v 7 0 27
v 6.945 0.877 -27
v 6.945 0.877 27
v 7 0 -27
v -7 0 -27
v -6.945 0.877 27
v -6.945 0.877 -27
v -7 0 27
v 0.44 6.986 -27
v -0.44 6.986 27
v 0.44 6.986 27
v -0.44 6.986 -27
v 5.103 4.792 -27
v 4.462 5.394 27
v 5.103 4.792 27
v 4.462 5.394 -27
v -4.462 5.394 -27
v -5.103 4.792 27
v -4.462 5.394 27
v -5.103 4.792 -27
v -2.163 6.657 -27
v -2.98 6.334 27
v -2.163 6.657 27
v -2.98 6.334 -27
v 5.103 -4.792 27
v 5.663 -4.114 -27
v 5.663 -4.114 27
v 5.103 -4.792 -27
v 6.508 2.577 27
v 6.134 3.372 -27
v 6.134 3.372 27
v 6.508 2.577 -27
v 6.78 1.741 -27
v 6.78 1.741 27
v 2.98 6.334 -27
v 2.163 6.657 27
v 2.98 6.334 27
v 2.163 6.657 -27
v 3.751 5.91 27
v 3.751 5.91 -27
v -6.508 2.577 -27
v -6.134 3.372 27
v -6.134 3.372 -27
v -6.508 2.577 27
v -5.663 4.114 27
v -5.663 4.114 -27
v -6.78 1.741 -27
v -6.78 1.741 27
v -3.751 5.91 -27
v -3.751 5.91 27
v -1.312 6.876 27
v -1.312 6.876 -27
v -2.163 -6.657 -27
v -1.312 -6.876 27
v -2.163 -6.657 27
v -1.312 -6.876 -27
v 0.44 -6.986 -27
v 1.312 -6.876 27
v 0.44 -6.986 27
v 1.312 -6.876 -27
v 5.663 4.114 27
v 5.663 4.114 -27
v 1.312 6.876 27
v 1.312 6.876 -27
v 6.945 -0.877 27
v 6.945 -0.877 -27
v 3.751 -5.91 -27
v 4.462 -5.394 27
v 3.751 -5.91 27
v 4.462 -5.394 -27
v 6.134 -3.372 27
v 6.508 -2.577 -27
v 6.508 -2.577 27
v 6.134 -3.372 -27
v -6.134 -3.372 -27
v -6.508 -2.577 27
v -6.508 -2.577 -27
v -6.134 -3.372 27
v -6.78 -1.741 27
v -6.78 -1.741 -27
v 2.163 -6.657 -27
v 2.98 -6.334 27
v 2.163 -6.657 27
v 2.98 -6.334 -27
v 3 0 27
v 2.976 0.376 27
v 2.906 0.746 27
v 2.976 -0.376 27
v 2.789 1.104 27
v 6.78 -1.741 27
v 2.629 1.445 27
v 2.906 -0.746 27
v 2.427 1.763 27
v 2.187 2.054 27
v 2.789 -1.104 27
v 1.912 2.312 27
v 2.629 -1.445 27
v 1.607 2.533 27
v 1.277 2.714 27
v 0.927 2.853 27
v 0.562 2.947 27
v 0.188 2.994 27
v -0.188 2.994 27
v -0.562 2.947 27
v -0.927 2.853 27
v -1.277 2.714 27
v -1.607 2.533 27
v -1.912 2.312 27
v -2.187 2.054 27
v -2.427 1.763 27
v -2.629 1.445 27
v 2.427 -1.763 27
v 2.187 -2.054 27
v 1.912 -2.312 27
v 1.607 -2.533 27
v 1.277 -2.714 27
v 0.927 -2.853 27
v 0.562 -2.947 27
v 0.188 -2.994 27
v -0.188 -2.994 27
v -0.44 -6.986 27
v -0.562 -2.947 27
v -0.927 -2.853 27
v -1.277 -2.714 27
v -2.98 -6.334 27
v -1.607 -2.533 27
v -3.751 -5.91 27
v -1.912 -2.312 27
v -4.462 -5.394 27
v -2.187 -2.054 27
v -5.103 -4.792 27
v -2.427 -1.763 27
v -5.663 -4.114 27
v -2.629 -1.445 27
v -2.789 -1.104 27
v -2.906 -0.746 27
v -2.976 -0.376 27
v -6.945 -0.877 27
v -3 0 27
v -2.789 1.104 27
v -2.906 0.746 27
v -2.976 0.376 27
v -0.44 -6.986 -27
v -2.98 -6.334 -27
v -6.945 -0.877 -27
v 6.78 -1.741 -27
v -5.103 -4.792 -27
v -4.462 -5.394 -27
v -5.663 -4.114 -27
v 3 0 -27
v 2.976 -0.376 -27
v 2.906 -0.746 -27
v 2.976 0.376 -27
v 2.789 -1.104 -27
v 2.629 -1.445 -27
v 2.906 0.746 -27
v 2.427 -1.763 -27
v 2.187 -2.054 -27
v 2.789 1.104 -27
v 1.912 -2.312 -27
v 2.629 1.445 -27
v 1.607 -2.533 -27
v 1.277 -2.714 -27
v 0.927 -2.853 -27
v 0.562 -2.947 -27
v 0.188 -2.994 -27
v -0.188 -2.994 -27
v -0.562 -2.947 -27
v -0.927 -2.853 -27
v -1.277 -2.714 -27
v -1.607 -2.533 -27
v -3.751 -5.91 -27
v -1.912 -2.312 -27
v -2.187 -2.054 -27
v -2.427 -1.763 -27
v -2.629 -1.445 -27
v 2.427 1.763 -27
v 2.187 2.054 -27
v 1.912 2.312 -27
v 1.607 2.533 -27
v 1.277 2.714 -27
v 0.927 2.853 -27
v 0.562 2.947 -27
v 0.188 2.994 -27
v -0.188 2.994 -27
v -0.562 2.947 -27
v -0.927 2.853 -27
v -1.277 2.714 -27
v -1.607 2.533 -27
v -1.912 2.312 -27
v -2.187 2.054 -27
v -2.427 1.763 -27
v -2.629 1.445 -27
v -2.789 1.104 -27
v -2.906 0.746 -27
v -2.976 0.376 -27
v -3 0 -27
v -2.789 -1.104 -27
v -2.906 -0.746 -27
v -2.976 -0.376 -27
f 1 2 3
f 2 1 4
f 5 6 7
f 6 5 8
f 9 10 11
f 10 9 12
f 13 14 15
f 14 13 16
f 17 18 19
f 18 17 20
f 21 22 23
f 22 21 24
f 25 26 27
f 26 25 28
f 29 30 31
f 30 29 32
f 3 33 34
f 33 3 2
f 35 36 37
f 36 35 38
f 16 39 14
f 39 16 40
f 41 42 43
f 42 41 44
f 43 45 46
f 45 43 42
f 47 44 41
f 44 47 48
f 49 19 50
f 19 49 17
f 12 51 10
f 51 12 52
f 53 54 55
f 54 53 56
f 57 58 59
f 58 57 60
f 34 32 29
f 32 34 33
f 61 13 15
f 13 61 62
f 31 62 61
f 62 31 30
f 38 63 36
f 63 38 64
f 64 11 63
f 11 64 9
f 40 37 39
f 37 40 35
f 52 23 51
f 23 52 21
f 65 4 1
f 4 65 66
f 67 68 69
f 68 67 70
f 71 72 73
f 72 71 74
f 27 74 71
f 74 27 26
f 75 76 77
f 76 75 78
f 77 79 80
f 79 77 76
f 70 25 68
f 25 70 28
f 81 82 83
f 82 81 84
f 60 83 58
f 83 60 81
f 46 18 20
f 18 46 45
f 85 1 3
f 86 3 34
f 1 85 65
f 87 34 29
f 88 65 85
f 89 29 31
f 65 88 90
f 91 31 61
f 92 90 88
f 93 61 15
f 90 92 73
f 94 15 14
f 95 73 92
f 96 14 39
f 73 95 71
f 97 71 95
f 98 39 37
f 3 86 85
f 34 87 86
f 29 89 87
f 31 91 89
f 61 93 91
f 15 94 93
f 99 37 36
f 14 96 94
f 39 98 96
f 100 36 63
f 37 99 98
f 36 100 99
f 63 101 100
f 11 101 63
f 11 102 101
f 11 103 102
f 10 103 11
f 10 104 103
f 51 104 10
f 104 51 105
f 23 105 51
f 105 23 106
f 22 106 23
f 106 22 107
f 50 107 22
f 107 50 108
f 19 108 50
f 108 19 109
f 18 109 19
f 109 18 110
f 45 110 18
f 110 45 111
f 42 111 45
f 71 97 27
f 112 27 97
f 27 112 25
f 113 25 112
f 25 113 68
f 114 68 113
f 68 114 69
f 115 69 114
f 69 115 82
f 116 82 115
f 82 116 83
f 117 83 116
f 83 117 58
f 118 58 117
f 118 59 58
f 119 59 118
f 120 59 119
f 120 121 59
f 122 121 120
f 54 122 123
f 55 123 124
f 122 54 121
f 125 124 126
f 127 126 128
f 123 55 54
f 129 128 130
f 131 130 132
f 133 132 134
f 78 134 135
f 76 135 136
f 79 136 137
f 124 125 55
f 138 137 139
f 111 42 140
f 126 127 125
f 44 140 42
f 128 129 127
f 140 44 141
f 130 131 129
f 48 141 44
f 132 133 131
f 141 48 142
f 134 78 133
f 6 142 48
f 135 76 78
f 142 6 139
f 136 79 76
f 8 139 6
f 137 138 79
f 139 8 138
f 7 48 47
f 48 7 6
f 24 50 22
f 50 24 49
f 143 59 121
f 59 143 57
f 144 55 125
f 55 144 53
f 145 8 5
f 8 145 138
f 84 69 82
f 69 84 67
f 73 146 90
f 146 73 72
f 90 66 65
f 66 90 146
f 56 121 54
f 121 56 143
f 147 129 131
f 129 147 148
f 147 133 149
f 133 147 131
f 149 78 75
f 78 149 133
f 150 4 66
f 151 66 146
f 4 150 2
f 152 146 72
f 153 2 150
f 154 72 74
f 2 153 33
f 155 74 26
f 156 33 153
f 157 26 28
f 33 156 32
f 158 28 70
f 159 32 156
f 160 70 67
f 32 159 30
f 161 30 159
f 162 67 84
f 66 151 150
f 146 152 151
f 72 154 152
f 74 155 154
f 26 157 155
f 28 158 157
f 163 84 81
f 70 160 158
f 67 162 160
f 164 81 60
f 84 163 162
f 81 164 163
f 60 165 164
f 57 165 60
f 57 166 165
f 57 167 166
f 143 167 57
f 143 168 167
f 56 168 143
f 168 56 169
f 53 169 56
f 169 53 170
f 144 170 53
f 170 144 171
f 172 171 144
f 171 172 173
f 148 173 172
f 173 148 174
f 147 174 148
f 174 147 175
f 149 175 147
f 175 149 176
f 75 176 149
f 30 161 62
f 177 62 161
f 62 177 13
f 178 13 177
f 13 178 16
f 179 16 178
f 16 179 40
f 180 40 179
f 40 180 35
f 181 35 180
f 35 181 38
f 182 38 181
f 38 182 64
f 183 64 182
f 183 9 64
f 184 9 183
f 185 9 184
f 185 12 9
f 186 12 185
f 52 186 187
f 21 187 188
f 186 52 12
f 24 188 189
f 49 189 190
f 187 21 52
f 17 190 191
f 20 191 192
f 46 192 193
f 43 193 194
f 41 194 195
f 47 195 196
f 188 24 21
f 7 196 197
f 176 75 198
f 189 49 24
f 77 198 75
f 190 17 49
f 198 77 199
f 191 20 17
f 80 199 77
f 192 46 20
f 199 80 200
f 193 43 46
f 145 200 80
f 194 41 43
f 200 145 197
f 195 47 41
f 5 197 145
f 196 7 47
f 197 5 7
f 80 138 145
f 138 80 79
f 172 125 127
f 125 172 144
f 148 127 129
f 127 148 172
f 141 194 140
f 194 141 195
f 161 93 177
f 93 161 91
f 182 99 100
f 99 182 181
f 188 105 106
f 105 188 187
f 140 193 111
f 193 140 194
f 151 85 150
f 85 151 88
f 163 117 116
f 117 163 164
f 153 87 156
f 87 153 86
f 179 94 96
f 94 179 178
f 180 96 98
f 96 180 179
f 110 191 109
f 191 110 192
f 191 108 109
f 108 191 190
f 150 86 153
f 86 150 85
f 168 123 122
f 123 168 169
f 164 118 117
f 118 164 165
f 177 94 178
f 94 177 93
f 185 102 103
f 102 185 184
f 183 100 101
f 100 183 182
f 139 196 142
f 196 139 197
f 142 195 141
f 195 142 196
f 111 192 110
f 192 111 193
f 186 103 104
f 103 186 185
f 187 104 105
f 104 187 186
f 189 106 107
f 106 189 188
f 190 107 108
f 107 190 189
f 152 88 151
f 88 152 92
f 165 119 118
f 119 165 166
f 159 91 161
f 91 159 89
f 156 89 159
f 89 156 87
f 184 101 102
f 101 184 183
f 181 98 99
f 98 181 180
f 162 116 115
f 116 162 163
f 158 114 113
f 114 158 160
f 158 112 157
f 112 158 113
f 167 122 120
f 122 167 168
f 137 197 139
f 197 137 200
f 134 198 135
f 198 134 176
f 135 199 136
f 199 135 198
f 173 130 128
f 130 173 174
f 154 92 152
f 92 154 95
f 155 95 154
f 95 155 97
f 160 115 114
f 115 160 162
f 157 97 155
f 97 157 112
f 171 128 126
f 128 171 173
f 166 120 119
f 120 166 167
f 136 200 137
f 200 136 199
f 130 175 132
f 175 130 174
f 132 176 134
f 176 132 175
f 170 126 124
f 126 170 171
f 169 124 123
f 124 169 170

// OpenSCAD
$fn = 50;


difference() {
	union() {
		translate(v = [0, 0, -27.0000000000]) {
			cylinder(h = 54, r = 7.0000000000);
		}
	}
	union() {
		translate(v = [0, 0, -100.0000000000]) {
			cylinder(h = 200, r = 3.0000000000);
		}
	}
}
